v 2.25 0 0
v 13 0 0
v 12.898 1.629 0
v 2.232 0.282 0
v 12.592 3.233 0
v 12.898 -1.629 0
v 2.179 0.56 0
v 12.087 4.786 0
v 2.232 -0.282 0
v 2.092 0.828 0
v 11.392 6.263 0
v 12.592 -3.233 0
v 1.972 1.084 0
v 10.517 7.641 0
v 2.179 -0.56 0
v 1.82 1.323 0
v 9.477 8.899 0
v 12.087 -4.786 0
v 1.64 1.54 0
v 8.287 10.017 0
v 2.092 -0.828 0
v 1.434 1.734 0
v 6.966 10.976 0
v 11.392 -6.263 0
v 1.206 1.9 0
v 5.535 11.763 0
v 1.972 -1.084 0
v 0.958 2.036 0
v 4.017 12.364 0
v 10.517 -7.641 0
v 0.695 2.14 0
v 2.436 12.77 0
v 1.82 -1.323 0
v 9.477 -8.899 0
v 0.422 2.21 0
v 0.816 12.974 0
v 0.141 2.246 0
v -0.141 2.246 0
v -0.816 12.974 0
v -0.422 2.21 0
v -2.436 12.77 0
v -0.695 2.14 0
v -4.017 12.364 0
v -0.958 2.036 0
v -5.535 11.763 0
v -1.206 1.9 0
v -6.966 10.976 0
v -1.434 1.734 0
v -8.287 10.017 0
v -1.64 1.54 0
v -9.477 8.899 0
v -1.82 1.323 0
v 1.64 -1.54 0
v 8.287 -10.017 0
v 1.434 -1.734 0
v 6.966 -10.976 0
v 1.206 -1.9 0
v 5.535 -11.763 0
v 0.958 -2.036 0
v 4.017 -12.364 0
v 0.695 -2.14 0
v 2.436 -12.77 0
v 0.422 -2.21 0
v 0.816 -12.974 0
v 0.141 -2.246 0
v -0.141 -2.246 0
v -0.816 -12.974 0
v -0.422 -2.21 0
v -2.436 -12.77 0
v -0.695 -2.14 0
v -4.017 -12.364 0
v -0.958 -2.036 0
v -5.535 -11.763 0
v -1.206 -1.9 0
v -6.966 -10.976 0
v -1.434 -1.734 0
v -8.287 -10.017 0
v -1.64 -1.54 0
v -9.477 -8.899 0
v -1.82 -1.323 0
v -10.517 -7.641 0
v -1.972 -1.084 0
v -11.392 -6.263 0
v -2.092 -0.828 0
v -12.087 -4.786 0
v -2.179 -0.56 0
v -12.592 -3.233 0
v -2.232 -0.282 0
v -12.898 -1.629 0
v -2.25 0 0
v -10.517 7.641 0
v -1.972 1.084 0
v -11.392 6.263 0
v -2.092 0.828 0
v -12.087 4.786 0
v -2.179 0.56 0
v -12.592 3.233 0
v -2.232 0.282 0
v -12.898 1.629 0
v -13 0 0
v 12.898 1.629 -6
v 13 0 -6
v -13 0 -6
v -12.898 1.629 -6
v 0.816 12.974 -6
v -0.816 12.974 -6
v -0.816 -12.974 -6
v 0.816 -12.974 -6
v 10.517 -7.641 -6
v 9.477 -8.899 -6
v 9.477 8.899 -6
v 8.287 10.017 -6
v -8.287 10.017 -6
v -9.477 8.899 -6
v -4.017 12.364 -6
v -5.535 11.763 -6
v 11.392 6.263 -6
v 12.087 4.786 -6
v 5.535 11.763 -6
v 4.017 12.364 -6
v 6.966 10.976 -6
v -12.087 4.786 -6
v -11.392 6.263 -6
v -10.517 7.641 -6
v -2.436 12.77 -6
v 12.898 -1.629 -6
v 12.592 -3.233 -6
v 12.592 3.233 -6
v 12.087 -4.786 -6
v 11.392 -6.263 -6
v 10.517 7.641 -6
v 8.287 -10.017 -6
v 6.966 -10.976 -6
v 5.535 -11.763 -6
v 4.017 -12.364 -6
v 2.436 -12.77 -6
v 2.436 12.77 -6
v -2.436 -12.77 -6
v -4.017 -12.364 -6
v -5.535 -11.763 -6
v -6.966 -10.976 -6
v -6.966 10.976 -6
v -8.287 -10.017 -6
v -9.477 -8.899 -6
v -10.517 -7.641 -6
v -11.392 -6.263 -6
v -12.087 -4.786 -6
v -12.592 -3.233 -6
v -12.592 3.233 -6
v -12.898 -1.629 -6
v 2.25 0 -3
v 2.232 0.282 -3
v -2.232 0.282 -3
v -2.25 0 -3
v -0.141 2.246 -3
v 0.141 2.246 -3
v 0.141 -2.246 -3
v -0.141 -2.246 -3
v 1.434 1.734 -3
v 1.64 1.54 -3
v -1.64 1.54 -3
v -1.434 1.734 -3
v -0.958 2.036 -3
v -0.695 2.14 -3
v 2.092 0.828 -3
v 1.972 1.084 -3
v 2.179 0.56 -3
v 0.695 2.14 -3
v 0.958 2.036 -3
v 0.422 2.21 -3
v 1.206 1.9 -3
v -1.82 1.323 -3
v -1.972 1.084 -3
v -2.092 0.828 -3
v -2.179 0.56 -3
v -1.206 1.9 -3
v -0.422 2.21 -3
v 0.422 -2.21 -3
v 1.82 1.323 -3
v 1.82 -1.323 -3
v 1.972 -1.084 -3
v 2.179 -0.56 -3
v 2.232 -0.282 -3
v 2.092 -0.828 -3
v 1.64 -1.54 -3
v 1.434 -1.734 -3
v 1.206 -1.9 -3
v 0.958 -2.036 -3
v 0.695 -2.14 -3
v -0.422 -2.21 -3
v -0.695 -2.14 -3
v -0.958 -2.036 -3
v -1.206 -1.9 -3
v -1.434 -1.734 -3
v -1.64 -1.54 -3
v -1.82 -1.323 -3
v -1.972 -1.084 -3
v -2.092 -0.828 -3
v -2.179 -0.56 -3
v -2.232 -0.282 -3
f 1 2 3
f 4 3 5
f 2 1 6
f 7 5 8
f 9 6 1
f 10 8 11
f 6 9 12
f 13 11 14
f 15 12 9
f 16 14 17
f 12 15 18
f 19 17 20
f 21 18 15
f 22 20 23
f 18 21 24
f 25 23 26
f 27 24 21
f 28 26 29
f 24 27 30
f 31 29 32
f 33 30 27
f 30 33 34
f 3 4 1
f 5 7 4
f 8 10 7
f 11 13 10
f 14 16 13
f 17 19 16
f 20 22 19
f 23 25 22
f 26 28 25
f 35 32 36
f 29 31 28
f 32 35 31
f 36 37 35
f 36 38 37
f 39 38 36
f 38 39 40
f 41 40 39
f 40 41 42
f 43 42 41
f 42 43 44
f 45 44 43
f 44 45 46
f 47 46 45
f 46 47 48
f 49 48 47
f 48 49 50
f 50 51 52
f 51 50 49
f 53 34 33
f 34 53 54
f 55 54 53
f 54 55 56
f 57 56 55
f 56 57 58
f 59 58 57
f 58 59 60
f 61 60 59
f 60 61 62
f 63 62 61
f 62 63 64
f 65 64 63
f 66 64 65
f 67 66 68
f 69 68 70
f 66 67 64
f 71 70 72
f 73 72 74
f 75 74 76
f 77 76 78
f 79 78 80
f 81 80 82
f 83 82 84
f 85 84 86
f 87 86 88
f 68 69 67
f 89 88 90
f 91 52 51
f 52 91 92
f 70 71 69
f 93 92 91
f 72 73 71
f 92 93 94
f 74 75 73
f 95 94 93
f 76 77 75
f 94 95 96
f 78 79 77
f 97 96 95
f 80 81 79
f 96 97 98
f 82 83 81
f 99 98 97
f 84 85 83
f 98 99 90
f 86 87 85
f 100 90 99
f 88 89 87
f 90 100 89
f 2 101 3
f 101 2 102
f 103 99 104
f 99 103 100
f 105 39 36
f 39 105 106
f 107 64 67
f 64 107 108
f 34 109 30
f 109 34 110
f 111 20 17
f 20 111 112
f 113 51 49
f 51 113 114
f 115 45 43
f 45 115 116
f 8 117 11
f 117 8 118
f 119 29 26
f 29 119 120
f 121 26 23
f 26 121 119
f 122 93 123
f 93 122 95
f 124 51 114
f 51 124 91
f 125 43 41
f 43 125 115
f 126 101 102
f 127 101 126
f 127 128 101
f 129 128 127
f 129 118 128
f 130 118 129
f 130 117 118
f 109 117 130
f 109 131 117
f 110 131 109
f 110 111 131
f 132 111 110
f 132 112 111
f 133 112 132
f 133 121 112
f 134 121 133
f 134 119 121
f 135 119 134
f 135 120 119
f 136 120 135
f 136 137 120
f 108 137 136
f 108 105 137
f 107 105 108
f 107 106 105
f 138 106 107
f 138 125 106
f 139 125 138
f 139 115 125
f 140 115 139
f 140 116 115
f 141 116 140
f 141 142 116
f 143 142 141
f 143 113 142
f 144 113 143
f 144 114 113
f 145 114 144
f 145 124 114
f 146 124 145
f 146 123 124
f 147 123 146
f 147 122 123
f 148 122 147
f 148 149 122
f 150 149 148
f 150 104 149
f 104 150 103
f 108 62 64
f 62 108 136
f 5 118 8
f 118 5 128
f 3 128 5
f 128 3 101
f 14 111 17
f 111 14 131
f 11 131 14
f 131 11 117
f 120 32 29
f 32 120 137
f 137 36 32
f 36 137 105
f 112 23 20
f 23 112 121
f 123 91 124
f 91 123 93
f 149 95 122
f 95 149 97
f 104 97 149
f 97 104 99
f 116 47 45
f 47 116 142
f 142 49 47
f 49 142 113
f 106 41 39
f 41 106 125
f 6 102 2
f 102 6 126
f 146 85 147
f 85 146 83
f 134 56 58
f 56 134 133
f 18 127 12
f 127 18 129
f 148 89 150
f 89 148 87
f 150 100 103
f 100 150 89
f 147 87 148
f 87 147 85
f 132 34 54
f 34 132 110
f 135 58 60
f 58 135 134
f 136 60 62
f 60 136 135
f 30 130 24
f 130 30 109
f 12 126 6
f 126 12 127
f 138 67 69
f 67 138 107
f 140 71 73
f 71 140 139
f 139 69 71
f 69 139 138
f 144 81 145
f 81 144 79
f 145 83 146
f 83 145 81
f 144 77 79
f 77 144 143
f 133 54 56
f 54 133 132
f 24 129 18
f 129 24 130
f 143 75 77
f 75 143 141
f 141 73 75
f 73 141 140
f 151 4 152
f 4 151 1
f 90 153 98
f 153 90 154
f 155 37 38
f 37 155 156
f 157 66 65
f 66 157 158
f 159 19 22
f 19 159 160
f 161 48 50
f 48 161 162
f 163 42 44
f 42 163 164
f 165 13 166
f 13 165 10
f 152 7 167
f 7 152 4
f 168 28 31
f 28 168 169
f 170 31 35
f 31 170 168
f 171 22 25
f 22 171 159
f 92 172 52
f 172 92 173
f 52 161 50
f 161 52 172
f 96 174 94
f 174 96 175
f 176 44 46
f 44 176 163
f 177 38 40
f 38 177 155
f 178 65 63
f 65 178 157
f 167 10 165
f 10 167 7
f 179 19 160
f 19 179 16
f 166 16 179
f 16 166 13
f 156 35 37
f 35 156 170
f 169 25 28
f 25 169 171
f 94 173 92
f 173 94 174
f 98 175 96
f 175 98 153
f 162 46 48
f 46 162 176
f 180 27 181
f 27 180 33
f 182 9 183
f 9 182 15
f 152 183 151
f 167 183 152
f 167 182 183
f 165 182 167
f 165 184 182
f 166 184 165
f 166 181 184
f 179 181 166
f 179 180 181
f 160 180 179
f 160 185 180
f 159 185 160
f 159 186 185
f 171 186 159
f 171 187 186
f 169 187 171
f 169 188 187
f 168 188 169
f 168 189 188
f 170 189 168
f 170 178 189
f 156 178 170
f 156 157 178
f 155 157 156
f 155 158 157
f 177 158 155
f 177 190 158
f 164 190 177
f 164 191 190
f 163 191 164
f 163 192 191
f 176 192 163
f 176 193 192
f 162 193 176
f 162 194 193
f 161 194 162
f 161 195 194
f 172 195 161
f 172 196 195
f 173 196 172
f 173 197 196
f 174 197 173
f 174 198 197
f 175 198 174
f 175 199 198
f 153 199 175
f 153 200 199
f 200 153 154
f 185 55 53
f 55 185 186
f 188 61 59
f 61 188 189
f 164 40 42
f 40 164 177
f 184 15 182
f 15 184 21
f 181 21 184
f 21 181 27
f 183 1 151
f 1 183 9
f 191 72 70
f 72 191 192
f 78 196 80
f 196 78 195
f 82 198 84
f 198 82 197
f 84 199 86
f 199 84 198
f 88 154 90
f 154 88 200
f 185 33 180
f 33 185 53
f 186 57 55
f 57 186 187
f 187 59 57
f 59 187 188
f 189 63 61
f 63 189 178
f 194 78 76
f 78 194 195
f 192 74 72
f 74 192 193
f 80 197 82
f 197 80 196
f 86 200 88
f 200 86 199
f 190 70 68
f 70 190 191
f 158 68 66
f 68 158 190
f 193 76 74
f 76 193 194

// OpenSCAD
$fn = 50;


difference() {
	union() {
		translate(v = [0, 0, -3.0000000000]) {
			cylinder(h = 3, r = 10.0000000000);
		}
		translate(v = [0, 0, -6.0000000000]) {
			cylinder(h = 6, r = 13.0000000000);
		}
	}
	union() {
		#translate(v = [0, 0, -3]) {
			cylinder(h = 3, r = 2.2500000000);
		}
	}
}
